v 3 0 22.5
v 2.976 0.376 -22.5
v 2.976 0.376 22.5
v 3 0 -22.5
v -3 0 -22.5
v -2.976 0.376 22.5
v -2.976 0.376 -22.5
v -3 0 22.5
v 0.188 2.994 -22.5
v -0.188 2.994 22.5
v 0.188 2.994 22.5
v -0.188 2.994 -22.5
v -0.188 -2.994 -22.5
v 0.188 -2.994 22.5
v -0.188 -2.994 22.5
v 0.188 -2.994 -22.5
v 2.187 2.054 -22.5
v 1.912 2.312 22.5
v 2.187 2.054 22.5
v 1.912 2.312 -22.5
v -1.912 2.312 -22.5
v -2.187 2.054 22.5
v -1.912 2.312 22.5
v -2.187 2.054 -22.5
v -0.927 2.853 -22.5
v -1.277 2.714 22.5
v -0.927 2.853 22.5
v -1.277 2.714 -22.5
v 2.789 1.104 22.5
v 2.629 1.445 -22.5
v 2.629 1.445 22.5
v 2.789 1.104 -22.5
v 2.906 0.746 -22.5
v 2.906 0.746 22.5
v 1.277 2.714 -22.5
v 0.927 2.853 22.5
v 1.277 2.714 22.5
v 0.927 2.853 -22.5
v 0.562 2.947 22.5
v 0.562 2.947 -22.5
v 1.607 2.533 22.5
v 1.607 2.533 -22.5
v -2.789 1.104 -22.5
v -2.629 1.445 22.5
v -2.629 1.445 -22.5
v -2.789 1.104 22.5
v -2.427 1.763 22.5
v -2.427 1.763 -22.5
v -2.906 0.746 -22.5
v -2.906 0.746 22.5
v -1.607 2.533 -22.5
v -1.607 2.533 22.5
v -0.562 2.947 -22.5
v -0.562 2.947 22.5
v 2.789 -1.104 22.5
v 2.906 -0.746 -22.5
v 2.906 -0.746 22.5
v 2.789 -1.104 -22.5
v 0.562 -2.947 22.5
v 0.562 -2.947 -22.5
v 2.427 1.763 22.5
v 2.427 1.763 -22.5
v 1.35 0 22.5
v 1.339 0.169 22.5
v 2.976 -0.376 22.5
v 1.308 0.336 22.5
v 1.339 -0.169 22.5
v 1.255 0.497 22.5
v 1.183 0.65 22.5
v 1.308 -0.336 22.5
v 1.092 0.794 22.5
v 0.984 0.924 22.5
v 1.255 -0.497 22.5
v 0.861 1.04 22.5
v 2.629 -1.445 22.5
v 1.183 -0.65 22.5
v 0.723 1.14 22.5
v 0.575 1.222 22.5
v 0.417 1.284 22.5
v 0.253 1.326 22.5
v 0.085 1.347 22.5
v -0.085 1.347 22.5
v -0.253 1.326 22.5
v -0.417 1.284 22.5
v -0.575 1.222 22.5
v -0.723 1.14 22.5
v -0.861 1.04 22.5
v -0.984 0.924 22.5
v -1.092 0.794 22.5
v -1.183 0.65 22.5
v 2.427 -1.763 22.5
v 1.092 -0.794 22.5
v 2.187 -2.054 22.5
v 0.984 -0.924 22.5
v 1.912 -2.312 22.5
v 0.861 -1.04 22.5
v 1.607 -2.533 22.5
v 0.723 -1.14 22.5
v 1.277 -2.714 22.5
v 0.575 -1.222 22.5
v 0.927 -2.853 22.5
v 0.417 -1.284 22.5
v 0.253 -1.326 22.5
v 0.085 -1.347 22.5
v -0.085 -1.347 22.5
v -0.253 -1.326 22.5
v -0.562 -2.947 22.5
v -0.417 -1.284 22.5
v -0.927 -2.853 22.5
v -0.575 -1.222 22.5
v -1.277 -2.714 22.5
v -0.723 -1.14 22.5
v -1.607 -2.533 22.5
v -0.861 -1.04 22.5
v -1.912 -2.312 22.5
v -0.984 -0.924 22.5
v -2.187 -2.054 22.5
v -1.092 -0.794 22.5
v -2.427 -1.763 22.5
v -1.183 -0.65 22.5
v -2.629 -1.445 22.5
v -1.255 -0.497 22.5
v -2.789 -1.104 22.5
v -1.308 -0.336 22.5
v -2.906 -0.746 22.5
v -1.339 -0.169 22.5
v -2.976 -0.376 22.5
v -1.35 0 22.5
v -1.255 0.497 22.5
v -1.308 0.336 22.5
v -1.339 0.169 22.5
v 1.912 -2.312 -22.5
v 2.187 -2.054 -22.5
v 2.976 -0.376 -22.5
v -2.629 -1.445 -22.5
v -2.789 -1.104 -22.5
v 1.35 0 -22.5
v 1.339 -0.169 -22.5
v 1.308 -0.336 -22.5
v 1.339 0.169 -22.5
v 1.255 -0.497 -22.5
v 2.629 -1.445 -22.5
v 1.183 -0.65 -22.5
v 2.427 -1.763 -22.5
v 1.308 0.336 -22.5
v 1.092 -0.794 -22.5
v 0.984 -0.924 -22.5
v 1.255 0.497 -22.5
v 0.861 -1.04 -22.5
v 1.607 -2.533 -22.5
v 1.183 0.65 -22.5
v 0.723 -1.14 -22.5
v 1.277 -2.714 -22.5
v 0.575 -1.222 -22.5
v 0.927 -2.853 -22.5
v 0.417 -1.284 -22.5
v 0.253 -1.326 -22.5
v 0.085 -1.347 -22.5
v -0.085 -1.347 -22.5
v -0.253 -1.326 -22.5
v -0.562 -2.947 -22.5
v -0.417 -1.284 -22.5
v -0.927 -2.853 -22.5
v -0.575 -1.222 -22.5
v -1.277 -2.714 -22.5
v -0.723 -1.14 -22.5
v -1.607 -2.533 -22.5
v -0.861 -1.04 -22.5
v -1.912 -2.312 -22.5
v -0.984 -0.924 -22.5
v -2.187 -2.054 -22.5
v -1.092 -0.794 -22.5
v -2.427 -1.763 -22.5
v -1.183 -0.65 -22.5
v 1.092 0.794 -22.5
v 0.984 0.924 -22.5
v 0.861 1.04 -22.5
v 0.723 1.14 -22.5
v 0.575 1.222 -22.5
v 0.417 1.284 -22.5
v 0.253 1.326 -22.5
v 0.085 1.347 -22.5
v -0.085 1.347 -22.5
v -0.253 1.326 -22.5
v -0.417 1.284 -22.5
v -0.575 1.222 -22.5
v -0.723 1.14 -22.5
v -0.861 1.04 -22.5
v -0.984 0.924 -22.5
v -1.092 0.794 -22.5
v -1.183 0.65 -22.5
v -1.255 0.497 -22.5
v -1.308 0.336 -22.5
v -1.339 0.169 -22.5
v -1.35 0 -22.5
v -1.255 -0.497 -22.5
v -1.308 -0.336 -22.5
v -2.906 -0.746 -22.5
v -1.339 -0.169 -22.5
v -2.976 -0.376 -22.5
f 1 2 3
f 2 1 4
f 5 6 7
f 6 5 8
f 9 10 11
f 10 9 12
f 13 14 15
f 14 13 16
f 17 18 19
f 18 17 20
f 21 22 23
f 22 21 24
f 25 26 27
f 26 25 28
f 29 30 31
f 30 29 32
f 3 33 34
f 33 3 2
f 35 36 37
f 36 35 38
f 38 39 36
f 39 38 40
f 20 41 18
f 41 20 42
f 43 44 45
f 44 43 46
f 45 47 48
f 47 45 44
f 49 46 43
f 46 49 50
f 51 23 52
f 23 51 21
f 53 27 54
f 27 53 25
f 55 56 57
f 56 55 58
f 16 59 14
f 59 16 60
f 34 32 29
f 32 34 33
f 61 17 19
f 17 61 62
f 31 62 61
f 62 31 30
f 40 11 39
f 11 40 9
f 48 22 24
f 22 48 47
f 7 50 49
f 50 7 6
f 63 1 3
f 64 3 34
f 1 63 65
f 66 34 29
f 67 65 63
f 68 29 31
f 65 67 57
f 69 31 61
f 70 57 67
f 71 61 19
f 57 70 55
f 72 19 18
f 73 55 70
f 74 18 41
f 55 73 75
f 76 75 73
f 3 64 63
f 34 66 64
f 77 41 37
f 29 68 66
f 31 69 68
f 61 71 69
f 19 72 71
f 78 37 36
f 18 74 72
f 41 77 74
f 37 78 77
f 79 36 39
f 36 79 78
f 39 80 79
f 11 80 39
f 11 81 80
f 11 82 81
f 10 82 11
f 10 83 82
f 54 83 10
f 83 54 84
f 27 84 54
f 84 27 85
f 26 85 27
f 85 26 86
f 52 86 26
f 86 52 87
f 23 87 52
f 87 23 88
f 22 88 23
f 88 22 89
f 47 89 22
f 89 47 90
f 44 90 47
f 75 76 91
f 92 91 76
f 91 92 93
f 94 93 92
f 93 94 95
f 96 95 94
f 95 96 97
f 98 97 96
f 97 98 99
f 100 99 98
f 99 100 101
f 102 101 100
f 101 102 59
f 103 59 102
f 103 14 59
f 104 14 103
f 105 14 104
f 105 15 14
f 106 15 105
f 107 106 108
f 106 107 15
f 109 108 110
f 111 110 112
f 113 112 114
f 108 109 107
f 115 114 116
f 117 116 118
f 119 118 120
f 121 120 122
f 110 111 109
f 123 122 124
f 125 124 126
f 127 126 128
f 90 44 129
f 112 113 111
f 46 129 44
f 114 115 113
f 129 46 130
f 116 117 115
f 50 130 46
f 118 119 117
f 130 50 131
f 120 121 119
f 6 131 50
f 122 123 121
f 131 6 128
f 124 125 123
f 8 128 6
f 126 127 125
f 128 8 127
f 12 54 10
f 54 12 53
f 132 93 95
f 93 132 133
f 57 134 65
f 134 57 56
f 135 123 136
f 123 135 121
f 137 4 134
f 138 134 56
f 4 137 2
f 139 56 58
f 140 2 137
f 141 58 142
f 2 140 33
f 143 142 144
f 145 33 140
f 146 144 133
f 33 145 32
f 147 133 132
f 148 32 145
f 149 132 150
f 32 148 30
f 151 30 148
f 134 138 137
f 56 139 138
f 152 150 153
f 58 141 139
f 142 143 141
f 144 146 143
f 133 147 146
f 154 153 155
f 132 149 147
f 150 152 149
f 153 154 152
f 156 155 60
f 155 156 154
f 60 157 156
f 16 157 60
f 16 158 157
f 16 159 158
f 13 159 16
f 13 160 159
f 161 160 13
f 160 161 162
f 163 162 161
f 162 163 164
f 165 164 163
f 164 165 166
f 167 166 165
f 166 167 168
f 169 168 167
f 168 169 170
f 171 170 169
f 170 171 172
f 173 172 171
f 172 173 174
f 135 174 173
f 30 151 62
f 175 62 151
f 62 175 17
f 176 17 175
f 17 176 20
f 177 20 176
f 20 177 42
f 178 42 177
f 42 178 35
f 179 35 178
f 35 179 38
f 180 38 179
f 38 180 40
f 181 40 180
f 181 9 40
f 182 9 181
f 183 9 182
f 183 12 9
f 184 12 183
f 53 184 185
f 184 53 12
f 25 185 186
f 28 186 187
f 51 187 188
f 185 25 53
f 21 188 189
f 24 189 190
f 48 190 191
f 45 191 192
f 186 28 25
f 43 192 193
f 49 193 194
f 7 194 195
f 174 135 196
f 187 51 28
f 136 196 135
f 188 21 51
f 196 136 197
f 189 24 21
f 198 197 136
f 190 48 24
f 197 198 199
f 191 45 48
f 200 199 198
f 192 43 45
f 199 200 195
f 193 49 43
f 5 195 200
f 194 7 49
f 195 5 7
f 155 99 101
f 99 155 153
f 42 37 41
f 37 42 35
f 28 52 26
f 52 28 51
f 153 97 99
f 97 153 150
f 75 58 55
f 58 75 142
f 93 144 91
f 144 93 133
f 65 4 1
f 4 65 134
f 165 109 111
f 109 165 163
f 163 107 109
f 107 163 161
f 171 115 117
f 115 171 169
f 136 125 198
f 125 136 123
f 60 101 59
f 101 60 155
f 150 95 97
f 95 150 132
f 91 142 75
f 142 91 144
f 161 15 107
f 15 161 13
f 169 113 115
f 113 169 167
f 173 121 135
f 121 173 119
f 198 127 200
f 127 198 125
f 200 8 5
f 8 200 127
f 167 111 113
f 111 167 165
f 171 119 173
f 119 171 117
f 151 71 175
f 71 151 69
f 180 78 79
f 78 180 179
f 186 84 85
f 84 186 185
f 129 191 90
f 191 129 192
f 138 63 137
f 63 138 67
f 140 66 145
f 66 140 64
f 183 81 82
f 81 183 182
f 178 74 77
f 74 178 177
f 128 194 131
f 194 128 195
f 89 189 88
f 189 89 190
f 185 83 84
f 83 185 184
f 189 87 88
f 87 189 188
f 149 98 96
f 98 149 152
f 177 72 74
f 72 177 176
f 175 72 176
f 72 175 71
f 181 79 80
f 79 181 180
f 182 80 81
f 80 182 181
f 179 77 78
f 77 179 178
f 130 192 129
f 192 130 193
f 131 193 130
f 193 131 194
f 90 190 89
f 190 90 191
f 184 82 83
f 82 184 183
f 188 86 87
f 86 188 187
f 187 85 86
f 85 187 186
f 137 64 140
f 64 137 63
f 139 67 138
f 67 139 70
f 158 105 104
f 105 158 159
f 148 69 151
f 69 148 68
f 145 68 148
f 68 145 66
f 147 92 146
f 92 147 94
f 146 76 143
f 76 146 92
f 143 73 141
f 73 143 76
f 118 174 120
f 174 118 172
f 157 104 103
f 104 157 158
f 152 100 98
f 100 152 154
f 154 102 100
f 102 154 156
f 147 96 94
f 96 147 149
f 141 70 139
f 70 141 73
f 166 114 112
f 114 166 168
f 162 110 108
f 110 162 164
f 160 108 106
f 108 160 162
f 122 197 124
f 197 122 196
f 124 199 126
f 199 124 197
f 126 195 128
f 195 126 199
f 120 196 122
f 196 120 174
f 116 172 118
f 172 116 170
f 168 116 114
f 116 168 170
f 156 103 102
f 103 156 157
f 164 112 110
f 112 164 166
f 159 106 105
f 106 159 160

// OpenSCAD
$fn = 50;


difference() {
	union() {
		translate(v = [0, 0, -22.5000000000]) {
			cylinder(h = 45, r = 3.0000000000);
		}
	}
	union() {
		translate(v = [0, 0, -100.0000000000]) {
			cylinder(h = 200, r = 1.3500000000);
		}
	}
}
